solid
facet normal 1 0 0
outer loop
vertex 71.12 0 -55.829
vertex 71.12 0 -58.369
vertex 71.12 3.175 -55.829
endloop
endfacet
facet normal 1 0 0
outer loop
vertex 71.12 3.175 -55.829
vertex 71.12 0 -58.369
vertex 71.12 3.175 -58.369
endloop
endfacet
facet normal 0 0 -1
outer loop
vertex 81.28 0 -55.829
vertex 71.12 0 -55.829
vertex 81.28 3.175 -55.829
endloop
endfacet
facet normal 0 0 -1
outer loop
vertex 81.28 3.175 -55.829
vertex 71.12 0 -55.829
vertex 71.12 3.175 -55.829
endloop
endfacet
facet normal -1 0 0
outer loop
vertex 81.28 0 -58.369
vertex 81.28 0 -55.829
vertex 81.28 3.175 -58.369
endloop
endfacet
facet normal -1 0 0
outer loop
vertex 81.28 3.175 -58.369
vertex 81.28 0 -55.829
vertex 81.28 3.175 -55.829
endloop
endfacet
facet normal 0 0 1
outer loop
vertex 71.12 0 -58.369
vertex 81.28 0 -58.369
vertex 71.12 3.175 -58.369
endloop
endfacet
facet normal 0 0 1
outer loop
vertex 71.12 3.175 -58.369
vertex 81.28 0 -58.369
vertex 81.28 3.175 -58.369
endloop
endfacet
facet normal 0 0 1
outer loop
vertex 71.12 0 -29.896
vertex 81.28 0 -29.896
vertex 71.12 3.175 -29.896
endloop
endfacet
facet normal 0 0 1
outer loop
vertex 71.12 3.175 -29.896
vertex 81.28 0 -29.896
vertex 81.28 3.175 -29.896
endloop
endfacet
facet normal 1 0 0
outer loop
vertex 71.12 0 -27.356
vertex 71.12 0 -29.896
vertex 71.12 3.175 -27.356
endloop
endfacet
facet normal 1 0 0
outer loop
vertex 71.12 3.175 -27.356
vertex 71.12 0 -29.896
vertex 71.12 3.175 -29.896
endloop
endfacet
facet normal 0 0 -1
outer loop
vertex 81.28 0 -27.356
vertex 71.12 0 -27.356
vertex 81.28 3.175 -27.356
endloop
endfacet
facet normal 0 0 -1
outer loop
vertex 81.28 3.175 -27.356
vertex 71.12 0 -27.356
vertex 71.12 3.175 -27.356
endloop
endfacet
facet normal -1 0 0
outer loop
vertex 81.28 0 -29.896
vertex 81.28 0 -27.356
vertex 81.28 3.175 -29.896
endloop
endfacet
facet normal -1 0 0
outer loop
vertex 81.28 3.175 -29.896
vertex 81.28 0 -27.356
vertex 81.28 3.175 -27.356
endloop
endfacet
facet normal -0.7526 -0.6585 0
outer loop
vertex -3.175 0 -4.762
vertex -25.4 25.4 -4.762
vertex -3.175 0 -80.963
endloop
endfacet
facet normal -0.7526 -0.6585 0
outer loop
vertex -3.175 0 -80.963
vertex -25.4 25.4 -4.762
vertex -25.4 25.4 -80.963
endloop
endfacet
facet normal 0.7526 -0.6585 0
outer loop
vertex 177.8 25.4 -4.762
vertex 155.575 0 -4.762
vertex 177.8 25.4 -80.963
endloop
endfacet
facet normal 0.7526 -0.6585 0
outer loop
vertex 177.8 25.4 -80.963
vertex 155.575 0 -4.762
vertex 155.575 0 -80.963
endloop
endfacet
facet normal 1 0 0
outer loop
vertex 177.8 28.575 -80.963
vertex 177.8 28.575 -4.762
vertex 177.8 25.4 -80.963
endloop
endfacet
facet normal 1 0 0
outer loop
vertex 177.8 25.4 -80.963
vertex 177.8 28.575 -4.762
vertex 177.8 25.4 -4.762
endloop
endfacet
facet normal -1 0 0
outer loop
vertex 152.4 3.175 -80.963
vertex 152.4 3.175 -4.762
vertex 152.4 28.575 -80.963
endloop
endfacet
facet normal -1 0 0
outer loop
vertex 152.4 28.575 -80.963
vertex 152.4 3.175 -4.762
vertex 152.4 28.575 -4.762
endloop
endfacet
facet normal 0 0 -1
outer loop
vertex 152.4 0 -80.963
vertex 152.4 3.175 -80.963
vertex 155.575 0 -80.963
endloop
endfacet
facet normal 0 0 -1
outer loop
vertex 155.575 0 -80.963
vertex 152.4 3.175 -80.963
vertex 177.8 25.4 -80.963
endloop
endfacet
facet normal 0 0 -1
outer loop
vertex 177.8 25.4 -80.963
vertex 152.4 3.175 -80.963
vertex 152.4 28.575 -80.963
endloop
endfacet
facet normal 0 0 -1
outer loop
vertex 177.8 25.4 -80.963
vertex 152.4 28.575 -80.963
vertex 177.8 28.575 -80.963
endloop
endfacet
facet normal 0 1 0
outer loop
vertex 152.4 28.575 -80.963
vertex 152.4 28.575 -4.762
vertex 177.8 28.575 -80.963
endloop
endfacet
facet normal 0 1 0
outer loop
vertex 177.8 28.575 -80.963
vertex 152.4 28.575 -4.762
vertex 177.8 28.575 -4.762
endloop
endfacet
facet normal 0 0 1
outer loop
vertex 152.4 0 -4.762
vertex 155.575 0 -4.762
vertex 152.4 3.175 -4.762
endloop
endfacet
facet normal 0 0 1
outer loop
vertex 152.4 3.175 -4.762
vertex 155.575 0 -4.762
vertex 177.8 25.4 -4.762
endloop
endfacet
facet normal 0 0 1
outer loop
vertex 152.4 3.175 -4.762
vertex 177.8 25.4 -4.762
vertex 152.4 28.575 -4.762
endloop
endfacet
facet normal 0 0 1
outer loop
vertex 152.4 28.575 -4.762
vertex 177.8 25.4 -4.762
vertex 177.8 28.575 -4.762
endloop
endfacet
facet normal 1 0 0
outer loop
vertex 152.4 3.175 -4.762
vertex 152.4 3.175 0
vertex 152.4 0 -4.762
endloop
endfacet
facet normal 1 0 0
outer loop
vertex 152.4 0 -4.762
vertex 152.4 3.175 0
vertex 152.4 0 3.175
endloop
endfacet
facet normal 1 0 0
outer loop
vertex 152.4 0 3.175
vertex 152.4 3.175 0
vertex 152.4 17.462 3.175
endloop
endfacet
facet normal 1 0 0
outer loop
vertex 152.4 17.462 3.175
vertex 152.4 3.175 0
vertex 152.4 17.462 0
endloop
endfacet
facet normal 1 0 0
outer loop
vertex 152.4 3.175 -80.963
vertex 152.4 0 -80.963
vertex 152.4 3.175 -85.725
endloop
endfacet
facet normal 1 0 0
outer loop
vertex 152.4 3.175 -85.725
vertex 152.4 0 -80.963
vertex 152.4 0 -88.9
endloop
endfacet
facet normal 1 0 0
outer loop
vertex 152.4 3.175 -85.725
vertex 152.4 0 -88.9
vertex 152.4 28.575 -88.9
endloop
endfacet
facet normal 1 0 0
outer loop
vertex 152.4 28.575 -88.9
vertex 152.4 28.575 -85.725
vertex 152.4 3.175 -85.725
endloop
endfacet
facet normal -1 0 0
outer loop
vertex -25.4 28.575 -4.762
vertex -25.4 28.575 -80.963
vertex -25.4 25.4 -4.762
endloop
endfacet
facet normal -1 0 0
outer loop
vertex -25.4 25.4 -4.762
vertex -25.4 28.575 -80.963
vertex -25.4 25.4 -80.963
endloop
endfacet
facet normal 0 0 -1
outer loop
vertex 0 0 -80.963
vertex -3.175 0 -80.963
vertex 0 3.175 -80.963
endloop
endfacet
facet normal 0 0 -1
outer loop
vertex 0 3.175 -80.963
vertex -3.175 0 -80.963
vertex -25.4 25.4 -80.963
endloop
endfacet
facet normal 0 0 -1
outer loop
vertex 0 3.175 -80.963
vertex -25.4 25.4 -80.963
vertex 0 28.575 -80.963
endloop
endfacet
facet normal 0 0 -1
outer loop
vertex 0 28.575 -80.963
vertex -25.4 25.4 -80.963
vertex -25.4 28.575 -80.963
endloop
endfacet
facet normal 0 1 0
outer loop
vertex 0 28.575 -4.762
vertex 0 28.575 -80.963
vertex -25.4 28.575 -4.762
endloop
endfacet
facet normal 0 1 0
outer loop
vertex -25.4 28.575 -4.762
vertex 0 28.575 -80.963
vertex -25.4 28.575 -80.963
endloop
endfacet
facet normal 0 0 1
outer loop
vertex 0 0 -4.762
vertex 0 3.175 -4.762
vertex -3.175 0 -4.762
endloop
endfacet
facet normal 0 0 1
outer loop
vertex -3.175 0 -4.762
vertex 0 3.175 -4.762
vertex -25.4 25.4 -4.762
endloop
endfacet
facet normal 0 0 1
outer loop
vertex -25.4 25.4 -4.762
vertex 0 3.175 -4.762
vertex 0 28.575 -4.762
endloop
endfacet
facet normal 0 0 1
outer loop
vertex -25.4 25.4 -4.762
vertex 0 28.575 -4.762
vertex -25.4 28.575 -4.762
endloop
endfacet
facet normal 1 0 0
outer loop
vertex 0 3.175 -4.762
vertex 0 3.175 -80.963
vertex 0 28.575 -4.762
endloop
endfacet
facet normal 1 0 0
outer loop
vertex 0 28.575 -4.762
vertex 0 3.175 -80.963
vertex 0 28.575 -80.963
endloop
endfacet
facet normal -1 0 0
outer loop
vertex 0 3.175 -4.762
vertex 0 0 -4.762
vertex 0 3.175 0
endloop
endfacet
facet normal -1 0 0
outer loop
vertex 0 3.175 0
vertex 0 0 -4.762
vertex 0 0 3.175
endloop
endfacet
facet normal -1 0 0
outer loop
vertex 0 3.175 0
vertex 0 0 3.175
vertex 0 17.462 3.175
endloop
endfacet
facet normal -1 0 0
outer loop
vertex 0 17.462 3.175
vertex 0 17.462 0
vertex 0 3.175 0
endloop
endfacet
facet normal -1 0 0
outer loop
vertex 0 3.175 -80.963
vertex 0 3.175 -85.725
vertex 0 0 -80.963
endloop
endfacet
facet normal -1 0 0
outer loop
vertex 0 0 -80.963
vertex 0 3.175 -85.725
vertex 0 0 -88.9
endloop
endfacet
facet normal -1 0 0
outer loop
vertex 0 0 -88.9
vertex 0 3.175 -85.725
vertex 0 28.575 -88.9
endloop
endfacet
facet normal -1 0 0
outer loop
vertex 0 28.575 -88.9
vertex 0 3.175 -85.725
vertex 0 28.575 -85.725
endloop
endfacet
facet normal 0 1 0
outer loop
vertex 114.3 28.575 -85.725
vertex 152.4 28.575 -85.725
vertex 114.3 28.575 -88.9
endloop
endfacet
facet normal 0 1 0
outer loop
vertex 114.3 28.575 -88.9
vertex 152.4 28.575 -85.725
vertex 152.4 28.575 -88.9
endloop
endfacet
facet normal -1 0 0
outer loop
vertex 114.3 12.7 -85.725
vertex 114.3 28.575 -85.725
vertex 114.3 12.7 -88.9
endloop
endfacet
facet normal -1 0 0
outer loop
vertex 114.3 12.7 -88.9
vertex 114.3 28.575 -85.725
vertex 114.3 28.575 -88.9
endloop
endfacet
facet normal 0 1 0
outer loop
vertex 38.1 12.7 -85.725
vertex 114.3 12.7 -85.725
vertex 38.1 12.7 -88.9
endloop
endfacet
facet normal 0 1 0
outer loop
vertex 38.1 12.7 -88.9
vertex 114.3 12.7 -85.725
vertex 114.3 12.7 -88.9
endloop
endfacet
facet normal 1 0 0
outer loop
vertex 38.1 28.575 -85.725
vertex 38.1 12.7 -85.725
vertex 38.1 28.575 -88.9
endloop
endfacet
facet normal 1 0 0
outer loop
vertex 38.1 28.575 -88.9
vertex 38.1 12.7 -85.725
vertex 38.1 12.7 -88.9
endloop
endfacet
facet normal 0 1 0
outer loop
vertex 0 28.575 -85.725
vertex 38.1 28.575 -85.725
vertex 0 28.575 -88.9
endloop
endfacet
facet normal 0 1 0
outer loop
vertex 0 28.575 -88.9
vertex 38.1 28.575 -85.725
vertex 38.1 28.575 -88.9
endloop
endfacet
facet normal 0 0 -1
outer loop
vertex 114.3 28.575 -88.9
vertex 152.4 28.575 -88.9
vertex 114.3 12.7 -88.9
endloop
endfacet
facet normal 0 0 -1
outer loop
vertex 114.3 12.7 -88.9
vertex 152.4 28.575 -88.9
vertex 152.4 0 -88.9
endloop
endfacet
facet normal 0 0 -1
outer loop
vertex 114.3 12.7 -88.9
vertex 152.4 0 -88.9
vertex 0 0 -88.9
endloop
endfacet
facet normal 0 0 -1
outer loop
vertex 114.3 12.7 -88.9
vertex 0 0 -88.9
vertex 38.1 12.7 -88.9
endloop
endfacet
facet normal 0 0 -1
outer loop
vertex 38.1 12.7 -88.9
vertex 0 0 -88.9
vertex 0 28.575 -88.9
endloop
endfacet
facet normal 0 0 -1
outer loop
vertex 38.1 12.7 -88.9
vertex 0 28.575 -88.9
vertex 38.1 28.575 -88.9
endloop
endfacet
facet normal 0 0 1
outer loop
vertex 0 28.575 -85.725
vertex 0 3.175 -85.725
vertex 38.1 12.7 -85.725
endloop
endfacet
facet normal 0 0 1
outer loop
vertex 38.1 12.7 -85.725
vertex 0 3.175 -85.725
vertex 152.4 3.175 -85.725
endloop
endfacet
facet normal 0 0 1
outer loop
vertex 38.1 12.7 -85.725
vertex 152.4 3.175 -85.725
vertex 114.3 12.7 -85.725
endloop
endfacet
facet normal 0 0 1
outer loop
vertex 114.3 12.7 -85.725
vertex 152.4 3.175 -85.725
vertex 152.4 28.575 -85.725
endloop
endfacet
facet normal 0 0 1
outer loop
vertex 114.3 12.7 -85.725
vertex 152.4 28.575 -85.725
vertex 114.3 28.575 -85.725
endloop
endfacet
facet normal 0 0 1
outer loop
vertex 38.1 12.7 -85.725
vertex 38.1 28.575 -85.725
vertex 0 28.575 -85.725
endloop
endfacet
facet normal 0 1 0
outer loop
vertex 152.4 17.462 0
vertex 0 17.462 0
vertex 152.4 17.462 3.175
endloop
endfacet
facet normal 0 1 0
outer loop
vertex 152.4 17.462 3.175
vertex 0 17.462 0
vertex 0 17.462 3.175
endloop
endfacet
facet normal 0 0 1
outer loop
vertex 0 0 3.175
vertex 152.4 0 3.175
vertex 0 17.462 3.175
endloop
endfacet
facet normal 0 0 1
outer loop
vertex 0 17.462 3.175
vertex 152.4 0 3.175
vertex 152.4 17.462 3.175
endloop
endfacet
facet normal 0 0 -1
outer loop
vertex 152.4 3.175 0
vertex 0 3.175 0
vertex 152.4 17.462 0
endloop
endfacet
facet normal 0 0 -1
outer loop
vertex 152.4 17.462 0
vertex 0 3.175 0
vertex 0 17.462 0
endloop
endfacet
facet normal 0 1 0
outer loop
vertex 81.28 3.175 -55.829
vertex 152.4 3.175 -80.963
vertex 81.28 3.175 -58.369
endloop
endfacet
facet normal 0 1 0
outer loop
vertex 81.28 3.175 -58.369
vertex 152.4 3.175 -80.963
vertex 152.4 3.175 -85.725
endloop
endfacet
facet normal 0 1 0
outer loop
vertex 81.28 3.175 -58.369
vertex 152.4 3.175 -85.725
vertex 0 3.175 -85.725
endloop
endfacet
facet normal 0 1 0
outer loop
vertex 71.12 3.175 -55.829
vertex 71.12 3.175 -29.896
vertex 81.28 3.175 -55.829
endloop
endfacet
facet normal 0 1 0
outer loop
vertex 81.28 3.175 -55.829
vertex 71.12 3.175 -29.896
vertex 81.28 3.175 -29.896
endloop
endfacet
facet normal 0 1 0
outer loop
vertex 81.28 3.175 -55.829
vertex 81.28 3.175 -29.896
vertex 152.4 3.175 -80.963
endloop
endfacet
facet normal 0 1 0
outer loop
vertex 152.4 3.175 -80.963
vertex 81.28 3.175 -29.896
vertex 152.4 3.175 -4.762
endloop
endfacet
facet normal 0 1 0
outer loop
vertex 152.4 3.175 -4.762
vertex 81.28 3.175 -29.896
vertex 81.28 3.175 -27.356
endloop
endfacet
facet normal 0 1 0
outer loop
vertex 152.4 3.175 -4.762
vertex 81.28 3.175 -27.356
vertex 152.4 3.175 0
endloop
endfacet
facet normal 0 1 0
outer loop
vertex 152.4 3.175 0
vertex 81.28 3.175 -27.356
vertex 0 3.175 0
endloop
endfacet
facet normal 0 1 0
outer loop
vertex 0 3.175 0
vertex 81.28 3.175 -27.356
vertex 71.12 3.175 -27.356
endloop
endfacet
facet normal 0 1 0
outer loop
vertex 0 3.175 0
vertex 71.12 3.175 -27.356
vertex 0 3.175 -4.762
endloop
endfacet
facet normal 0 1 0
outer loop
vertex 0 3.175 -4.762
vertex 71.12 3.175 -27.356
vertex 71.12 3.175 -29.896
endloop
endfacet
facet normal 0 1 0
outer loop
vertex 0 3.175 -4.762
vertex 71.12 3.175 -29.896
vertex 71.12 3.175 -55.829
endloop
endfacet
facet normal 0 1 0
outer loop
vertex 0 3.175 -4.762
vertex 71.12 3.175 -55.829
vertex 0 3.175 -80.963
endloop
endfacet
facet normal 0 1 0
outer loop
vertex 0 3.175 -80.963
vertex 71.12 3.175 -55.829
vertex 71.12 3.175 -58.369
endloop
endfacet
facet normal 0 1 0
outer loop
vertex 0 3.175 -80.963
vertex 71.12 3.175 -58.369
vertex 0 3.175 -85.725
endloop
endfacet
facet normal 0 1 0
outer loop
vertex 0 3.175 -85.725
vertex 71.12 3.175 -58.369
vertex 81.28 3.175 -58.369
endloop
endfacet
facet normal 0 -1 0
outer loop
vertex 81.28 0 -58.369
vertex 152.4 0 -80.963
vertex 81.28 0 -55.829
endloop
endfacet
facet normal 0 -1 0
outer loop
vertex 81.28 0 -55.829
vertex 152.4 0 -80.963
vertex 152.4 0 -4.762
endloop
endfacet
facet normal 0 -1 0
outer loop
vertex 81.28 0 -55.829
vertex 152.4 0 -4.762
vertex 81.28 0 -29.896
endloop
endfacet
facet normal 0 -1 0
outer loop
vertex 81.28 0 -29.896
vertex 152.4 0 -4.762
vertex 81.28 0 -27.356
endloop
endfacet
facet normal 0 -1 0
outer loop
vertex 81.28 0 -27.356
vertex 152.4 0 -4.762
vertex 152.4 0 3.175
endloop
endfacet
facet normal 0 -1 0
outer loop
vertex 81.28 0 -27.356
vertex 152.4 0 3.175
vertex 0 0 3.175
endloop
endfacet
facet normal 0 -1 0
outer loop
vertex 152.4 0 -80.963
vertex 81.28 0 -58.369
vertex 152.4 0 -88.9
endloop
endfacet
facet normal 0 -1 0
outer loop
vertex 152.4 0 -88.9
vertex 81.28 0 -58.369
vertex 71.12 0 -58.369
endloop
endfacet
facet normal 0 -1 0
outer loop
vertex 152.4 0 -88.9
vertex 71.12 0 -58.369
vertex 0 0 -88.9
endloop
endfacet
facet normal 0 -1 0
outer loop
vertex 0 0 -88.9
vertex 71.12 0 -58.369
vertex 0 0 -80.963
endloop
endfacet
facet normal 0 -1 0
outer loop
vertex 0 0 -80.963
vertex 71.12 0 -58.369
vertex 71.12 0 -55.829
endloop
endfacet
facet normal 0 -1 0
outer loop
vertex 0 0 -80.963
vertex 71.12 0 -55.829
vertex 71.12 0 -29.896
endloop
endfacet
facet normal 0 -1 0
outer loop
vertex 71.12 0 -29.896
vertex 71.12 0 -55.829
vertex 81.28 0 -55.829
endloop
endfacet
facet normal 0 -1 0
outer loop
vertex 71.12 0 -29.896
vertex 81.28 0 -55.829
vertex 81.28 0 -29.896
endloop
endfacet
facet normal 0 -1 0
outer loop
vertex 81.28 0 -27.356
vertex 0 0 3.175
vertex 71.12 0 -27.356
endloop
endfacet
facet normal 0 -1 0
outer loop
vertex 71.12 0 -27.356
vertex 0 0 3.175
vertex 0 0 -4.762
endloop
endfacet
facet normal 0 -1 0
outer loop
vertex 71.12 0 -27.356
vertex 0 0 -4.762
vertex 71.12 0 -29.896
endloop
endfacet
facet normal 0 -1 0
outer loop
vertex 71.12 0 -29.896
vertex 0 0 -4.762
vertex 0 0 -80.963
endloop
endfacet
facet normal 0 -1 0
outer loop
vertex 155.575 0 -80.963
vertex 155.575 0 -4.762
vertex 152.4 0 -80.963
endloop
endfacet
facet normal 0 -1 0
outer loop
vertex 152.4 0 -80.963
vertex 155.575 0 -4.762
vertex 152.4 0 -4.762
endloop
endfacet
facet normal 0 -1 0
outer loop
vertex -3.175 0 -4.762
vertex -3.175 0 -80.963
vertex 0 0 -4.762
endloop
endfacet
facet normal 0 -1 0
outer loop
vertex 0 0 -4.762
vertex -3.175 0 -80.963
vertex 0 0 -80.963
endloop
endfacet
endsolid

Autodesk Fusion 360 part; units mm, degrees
sketch "Sketch4" plane through (0, 0, 0) normal (0, 1, 0) x (1, 0, 0)
  line L0 (0, 0) -> (152.4, 0)
  line L1 (152.4, 0) -> (152.4, 85.725)
  line L2 (152.4, 85.725) -> (0, 85.725)
  line L3 (0, 85.725) -> (0, 0)
  dimension "d16" = 152.4
  dimension "d17" = 85.725
extrude "Extrude4" add sketch "Sketch4" along normal blind 3.175
sketch "Sketch5" plane through (0, 0, 0) normal (0, 0, 1) x (1, 0, 0)
  line L0 (0, 0) -> (152.4, 0)
  line L1 (152.4, 0) -> (152.4, 3.175)
  line L2 (152.4, 3.175) -> (0, 3.175)
  line L3 (0, 3.175) -> (0, 0)
  line L4 (0, 3.175) -> (152.4, 3.175)
  line L5 (0, 0) -> (152.4, 0)
  line L6 (0, 0) -> (0, 3.175)
  line L7 (152.4, 0) -> (152.4, 3.175)
  line L8 (152.4, 0) -> (152.4, 17.4625)
  line L9 (0, 0) -> (0, 17.4625)
  line L10 (0, 17.4625) -> (152.4, 17.4625)
  dimension "d20" = 17.4625
  dimension "d21" = 17.4625
extrude "Extrude5" add sketch "Sketch5" along normal blind 3.175
sketch "Sketch6" plane through (0, 0, -85.725) normal (0, 0, -1) x (-1, 0, 0)
  line L0 (-152.4, 0) -> (0, 0)
  line L1 (0, 0) -> (0, 3.175)
  line L2 (0, 3.175) -> (-152.4, 3.175)
  line L3 (-152.4, 3.175) -> (-152.4, 0)
  line L4 (-152.4, 3.175) -> (0, 3.175)
  line L5 (-152.4, 0) -> (-152.4, 3.175)
  line L6 (-152.4, 0) -> (0, 0)
  line L7 (0, 0) -> (0, 3.175)
  line L8 (0, 0) -> (0, 28.575)
  line L9 (0, 28.575) -> (-38.1, 28.575)
  line L10 (-38.1, 28.575) -> (-38.1, 12.7)
  line L11 (-38.1, 12.7) -> (-114.3, 12.7)
  line L12 (-114.3, 12.7) -> (-114.3, 28.575)
  line L13 (-114.3, 28.575) -> (-152.4, 28.575)
  line L14 (-152.4, 28.575) -> (-152.4, 0)
  dimension "d24" = 28.575
  dimension "d25" = 38.1
  dimension "d26" = 15.875
  dimension "d27" = 76.2
  dimension "d28" = 15.875
  dimension "d29" = 38.1
extrude "Extrude6" add sketch "Sketch6" along normal blind 3.175
sketch "Sketch7" plane through (0, 0, 0) normal (-1, 0, 0) x (0, 0, 1)
  line L0 (-88.9, 0) -> (3.175, 0)
  line L1 (3.175, 0) -> (3.175, 17.4625)
  line L2 (3.175, 17.4625) -> (0, 17.4625)
  line L3 (0, 17.4625) -> (0, 3.175)
  line L4 (0, 3.175) -> (-85.725, 3.175)
  line L5 (-85.725, 3.175) -> (-85.725, 28.575)
  line L6 (-85.725, 28.575) -> (-88.9, 28.575)
  line L7 (-88.9, 28.575) -> (-88.9, 0)
  line L8 (-85.725, 3.175) -> (-85.725, 28.575)
  line L9 (-85.725, 28.575) -> (-88.9, 28.575)
  line L10 (-88.9, 0) -> (-88.9, 28.575)
  line L11 (-85.725, 3.175) -> (0, 3.175)
  line L12 (0, 3.175) -> (0, 17.4625)
  line L13 (0, 17.4625) -> (3.175, 17.4625)
  line L14 (3.175, 17.4625) -> (3.175, 0)
  line L15 (-88.9, 0) -> (3.175, 0)
  line L16 (-85.725, 3.175) -> (-80.9625, 3.175) construction
  line L17 (0, 3.175) -> (-4.7625, 3.175) construction
  line L18 (-80.9625, 0) -> (-80.9625, 28.575)
  line L19 (-4.7625, 0) -> (-4.7625, 28.575)
  line L20 (-80.9625, 28.575) -> (-4.7625, 28.575)
  dimension "d35" = 4.7625
  dimension "d36" = 4.7625
  dimension "d37" = 28.575
  dimension "d38" = 28.575
  dimension "d39" = 76.2
extrude "Extrude7" add sketch "Sketch7" along normal blind 3.175 contours L0 L4 L11 L15 L18 L19 | L4 L11 L18 L19 L20
sketch "Sketch8" plane through (0, 28.575, 0) normal (0, 1, 0) x (-1, 0, 0)
  line L0 (0, -4.7625) -> (0, -80.9625)
  line L1 (0, -80.9625) -> (3.175, -80.9625)
  line L2 (3.175, -80.9625) -> (3.175, -4.7625)
  line L3 (3.175, -4.7625) -> (0, -4.7625)
  line L4 (0, -80.9625) -> (3.175, -80.9625)
  line L5 (0, -80.9625) -> (0, -4.7625)
  line L6 (3.175, -4.7625) -> (3.175, -80.9625)
  line L7 (0, -4.7625) -> (3.175, -4.7625)
  line L8 (0, -4.7625) -> (25.4, -4.7625)
  line L9 (0, -80.9625) -> (25.4, -80.9625)
  line L10 (25.4, -80.9625) -> (25.4, -4.7625)
  dimension "d42" = 25.4
  dimension "d43" = 25.4
  dimension "d44" = 76.2
extrude "Extrude9" add sketch "Sketch8" against normal blind 3.175 contours L2 L6 L8 L9 L10
ref_plane "WorkPlane1" through (76.2, 14.2875, -42.8625) normal (1, 0, 0) x (0, 0, -1)
mirror "Mirror1" about plane through (76.2, 14.2875, -42.8625) normal (1, 0, 0) of "Extrude7"
mirror "Mirror3" about plane through (76.2, 14.2875, -42.8625) normal (1, 0, 0) of "Extrude9"
sketch "Sketch9" plane through (0, 0, -80.9625) normal (0, 0, -1) x (-1, 0, 0)
  line L0 (-152.4, 0) -> (-152.4, 3.175)
  line L1 (-152.4, 3.175) -> (-152.4, 28.575)
  line L2 (-152.4, 28.575) -> (-177.8, 28.575)
  line L3 (-177.8, 28.575) -> (-177.8, 25.4)
  line L4 (-177.8, 25.4) -> (-155.575, 25.4)
  line L5 (-155.575, 25.4) -> (-155.575, 0)
  line L6 (-155.575, 0) -> (-152.4, 0)
  line L7 (-177.8, 25.4) -> (-155.575, 0)
extrude "Extrude10" add sketch "Sketch9" against normal up to surface (76.2 mm away) contours L4 L5 L7
mirror "Mirror4" about plane through (76.2, 14.2875, -42.8625) normal (1, 0, 0) of "Extrude10"
sketch "Sketch10" plane through (0, 3.175, 0) normal (0, 1, 0) x (-1, 0, 0)
  line L0 (0, -85.725) -> (0, -80.9625)
  line L1 (0, -80.9625) -> (0, -4.7625)
  line L2 (0, -4.7625) -> (0, 0)
  line L3 (0, 0) -> (-152.4, 0)
  line L4 (-152.4, 0) -> (-152.4, -4.7625)
  line L5 (-152.4, -4.7625) -> (-152.4, -80.9625)
  line L6 (-152.4, -80.9625) -> (-152.4, -85.725)
  line L7 (-152.4, -85.725) -> (0, -85.725)
  line L8 (0, -80.9625) -> (0, -4.7625)
  line L9 (-152.4, -85.725) -> (0, -85.725)
  line L10 (0, -85.725) -> (0, -80.9625)
  line L11 (0, -4.7625) -> (0, 0)
  line L12 (0, 0) -> (-152.4, 0)
  line L13 (-152.4, -4.7625) -> (-152.4, -80.9625)
  line L14 (-152.4, -80.9625) -> (-152.4, -85.725)
  line L15 (-152.4, 0) -> (-152.4, -4.7625)
  line L16 (0, -85.725) -> (-152.4, 0) construction
  line L17 (-152.4, -85.725) -> (0, 0) construction
  line L18 (-76.2, -42.8625) -> (-88.2955, -42.8625) construction
  line L19 (-76.2, -42.8625) -> (-64.1096, -42.8625) construction
  line L20 (-64.1096, -42.8625) -> (-64.1096, -58.3692) construction
  line L21 (-64.1096, -42.8625) -> (-64.1096, -27.3558) construction
  line L22 (-64.1096, -58.3692) -> (-88.2904, -58.3692) construction
  line L23 (-64.1096, -27.3558) -> (-88.2904, -27.3558) construction
  line L24 (-88.2904, -58.3692) -> (-88.2904, -27.3558) construction
  line L25 (-64.1096, -58.3692) -> (-71.12, -58.3692) construction
  line L26 (-88.2904, -58.3692) -> (-81.28, -58.3692) construction
  line L27 (-64.1096, -27.3558) -> (-71.12, -27.3558) construction
  line L28 (-71.12, -58.3692) -> (-71.12, -55.8292)
  line L29 (-71.12, -55.8292) -> (-81.28, -55.8292)
  line L30 (-81.28, -55.8292) -> (-81.28, -58.3692)
  line L31 (-71.12, -58.3692) -> (-81.28, -58.3692)
  line L32 (-71.12, -27.3558) -> (-71.12, -29.8958)
  line L33 (-71.12, -29.8958) -> (-81.28, -29.8958)
  line L34 (-81.28, -29.8958) -> (-81.28, -27.3558)
  line L35 (-64.1096, -27.3558) -> (-88.2904, -27.3558) construction
  line L36 (-71.12, -27.3558) -> (-81.28, -27.3558)
  point P0 (-152.4, -85.725)
  dimension "d61" = 15.5067
  dimension "d62" = 15.5067
  dimension "d63" = 24.1808
  dimension "d64" = 7.0104
  dimension "d65" = 7.0104
  dimension "d66" = 2.54
extrude "Extrude11" cut sketch "Sketch10" against normal blind 14.7066 contours L28 L29 L30 L31 | L32 L33 L34 L36
equation "d16 = 6\""
equation "d27 = 3\""
equation "d39 = 3\""
equation "d42 = 1\""
equation "d43 = 1\""
equation "d44 = 3\""
equation "d63 = ( 0.476 in + 0.476 in )"
